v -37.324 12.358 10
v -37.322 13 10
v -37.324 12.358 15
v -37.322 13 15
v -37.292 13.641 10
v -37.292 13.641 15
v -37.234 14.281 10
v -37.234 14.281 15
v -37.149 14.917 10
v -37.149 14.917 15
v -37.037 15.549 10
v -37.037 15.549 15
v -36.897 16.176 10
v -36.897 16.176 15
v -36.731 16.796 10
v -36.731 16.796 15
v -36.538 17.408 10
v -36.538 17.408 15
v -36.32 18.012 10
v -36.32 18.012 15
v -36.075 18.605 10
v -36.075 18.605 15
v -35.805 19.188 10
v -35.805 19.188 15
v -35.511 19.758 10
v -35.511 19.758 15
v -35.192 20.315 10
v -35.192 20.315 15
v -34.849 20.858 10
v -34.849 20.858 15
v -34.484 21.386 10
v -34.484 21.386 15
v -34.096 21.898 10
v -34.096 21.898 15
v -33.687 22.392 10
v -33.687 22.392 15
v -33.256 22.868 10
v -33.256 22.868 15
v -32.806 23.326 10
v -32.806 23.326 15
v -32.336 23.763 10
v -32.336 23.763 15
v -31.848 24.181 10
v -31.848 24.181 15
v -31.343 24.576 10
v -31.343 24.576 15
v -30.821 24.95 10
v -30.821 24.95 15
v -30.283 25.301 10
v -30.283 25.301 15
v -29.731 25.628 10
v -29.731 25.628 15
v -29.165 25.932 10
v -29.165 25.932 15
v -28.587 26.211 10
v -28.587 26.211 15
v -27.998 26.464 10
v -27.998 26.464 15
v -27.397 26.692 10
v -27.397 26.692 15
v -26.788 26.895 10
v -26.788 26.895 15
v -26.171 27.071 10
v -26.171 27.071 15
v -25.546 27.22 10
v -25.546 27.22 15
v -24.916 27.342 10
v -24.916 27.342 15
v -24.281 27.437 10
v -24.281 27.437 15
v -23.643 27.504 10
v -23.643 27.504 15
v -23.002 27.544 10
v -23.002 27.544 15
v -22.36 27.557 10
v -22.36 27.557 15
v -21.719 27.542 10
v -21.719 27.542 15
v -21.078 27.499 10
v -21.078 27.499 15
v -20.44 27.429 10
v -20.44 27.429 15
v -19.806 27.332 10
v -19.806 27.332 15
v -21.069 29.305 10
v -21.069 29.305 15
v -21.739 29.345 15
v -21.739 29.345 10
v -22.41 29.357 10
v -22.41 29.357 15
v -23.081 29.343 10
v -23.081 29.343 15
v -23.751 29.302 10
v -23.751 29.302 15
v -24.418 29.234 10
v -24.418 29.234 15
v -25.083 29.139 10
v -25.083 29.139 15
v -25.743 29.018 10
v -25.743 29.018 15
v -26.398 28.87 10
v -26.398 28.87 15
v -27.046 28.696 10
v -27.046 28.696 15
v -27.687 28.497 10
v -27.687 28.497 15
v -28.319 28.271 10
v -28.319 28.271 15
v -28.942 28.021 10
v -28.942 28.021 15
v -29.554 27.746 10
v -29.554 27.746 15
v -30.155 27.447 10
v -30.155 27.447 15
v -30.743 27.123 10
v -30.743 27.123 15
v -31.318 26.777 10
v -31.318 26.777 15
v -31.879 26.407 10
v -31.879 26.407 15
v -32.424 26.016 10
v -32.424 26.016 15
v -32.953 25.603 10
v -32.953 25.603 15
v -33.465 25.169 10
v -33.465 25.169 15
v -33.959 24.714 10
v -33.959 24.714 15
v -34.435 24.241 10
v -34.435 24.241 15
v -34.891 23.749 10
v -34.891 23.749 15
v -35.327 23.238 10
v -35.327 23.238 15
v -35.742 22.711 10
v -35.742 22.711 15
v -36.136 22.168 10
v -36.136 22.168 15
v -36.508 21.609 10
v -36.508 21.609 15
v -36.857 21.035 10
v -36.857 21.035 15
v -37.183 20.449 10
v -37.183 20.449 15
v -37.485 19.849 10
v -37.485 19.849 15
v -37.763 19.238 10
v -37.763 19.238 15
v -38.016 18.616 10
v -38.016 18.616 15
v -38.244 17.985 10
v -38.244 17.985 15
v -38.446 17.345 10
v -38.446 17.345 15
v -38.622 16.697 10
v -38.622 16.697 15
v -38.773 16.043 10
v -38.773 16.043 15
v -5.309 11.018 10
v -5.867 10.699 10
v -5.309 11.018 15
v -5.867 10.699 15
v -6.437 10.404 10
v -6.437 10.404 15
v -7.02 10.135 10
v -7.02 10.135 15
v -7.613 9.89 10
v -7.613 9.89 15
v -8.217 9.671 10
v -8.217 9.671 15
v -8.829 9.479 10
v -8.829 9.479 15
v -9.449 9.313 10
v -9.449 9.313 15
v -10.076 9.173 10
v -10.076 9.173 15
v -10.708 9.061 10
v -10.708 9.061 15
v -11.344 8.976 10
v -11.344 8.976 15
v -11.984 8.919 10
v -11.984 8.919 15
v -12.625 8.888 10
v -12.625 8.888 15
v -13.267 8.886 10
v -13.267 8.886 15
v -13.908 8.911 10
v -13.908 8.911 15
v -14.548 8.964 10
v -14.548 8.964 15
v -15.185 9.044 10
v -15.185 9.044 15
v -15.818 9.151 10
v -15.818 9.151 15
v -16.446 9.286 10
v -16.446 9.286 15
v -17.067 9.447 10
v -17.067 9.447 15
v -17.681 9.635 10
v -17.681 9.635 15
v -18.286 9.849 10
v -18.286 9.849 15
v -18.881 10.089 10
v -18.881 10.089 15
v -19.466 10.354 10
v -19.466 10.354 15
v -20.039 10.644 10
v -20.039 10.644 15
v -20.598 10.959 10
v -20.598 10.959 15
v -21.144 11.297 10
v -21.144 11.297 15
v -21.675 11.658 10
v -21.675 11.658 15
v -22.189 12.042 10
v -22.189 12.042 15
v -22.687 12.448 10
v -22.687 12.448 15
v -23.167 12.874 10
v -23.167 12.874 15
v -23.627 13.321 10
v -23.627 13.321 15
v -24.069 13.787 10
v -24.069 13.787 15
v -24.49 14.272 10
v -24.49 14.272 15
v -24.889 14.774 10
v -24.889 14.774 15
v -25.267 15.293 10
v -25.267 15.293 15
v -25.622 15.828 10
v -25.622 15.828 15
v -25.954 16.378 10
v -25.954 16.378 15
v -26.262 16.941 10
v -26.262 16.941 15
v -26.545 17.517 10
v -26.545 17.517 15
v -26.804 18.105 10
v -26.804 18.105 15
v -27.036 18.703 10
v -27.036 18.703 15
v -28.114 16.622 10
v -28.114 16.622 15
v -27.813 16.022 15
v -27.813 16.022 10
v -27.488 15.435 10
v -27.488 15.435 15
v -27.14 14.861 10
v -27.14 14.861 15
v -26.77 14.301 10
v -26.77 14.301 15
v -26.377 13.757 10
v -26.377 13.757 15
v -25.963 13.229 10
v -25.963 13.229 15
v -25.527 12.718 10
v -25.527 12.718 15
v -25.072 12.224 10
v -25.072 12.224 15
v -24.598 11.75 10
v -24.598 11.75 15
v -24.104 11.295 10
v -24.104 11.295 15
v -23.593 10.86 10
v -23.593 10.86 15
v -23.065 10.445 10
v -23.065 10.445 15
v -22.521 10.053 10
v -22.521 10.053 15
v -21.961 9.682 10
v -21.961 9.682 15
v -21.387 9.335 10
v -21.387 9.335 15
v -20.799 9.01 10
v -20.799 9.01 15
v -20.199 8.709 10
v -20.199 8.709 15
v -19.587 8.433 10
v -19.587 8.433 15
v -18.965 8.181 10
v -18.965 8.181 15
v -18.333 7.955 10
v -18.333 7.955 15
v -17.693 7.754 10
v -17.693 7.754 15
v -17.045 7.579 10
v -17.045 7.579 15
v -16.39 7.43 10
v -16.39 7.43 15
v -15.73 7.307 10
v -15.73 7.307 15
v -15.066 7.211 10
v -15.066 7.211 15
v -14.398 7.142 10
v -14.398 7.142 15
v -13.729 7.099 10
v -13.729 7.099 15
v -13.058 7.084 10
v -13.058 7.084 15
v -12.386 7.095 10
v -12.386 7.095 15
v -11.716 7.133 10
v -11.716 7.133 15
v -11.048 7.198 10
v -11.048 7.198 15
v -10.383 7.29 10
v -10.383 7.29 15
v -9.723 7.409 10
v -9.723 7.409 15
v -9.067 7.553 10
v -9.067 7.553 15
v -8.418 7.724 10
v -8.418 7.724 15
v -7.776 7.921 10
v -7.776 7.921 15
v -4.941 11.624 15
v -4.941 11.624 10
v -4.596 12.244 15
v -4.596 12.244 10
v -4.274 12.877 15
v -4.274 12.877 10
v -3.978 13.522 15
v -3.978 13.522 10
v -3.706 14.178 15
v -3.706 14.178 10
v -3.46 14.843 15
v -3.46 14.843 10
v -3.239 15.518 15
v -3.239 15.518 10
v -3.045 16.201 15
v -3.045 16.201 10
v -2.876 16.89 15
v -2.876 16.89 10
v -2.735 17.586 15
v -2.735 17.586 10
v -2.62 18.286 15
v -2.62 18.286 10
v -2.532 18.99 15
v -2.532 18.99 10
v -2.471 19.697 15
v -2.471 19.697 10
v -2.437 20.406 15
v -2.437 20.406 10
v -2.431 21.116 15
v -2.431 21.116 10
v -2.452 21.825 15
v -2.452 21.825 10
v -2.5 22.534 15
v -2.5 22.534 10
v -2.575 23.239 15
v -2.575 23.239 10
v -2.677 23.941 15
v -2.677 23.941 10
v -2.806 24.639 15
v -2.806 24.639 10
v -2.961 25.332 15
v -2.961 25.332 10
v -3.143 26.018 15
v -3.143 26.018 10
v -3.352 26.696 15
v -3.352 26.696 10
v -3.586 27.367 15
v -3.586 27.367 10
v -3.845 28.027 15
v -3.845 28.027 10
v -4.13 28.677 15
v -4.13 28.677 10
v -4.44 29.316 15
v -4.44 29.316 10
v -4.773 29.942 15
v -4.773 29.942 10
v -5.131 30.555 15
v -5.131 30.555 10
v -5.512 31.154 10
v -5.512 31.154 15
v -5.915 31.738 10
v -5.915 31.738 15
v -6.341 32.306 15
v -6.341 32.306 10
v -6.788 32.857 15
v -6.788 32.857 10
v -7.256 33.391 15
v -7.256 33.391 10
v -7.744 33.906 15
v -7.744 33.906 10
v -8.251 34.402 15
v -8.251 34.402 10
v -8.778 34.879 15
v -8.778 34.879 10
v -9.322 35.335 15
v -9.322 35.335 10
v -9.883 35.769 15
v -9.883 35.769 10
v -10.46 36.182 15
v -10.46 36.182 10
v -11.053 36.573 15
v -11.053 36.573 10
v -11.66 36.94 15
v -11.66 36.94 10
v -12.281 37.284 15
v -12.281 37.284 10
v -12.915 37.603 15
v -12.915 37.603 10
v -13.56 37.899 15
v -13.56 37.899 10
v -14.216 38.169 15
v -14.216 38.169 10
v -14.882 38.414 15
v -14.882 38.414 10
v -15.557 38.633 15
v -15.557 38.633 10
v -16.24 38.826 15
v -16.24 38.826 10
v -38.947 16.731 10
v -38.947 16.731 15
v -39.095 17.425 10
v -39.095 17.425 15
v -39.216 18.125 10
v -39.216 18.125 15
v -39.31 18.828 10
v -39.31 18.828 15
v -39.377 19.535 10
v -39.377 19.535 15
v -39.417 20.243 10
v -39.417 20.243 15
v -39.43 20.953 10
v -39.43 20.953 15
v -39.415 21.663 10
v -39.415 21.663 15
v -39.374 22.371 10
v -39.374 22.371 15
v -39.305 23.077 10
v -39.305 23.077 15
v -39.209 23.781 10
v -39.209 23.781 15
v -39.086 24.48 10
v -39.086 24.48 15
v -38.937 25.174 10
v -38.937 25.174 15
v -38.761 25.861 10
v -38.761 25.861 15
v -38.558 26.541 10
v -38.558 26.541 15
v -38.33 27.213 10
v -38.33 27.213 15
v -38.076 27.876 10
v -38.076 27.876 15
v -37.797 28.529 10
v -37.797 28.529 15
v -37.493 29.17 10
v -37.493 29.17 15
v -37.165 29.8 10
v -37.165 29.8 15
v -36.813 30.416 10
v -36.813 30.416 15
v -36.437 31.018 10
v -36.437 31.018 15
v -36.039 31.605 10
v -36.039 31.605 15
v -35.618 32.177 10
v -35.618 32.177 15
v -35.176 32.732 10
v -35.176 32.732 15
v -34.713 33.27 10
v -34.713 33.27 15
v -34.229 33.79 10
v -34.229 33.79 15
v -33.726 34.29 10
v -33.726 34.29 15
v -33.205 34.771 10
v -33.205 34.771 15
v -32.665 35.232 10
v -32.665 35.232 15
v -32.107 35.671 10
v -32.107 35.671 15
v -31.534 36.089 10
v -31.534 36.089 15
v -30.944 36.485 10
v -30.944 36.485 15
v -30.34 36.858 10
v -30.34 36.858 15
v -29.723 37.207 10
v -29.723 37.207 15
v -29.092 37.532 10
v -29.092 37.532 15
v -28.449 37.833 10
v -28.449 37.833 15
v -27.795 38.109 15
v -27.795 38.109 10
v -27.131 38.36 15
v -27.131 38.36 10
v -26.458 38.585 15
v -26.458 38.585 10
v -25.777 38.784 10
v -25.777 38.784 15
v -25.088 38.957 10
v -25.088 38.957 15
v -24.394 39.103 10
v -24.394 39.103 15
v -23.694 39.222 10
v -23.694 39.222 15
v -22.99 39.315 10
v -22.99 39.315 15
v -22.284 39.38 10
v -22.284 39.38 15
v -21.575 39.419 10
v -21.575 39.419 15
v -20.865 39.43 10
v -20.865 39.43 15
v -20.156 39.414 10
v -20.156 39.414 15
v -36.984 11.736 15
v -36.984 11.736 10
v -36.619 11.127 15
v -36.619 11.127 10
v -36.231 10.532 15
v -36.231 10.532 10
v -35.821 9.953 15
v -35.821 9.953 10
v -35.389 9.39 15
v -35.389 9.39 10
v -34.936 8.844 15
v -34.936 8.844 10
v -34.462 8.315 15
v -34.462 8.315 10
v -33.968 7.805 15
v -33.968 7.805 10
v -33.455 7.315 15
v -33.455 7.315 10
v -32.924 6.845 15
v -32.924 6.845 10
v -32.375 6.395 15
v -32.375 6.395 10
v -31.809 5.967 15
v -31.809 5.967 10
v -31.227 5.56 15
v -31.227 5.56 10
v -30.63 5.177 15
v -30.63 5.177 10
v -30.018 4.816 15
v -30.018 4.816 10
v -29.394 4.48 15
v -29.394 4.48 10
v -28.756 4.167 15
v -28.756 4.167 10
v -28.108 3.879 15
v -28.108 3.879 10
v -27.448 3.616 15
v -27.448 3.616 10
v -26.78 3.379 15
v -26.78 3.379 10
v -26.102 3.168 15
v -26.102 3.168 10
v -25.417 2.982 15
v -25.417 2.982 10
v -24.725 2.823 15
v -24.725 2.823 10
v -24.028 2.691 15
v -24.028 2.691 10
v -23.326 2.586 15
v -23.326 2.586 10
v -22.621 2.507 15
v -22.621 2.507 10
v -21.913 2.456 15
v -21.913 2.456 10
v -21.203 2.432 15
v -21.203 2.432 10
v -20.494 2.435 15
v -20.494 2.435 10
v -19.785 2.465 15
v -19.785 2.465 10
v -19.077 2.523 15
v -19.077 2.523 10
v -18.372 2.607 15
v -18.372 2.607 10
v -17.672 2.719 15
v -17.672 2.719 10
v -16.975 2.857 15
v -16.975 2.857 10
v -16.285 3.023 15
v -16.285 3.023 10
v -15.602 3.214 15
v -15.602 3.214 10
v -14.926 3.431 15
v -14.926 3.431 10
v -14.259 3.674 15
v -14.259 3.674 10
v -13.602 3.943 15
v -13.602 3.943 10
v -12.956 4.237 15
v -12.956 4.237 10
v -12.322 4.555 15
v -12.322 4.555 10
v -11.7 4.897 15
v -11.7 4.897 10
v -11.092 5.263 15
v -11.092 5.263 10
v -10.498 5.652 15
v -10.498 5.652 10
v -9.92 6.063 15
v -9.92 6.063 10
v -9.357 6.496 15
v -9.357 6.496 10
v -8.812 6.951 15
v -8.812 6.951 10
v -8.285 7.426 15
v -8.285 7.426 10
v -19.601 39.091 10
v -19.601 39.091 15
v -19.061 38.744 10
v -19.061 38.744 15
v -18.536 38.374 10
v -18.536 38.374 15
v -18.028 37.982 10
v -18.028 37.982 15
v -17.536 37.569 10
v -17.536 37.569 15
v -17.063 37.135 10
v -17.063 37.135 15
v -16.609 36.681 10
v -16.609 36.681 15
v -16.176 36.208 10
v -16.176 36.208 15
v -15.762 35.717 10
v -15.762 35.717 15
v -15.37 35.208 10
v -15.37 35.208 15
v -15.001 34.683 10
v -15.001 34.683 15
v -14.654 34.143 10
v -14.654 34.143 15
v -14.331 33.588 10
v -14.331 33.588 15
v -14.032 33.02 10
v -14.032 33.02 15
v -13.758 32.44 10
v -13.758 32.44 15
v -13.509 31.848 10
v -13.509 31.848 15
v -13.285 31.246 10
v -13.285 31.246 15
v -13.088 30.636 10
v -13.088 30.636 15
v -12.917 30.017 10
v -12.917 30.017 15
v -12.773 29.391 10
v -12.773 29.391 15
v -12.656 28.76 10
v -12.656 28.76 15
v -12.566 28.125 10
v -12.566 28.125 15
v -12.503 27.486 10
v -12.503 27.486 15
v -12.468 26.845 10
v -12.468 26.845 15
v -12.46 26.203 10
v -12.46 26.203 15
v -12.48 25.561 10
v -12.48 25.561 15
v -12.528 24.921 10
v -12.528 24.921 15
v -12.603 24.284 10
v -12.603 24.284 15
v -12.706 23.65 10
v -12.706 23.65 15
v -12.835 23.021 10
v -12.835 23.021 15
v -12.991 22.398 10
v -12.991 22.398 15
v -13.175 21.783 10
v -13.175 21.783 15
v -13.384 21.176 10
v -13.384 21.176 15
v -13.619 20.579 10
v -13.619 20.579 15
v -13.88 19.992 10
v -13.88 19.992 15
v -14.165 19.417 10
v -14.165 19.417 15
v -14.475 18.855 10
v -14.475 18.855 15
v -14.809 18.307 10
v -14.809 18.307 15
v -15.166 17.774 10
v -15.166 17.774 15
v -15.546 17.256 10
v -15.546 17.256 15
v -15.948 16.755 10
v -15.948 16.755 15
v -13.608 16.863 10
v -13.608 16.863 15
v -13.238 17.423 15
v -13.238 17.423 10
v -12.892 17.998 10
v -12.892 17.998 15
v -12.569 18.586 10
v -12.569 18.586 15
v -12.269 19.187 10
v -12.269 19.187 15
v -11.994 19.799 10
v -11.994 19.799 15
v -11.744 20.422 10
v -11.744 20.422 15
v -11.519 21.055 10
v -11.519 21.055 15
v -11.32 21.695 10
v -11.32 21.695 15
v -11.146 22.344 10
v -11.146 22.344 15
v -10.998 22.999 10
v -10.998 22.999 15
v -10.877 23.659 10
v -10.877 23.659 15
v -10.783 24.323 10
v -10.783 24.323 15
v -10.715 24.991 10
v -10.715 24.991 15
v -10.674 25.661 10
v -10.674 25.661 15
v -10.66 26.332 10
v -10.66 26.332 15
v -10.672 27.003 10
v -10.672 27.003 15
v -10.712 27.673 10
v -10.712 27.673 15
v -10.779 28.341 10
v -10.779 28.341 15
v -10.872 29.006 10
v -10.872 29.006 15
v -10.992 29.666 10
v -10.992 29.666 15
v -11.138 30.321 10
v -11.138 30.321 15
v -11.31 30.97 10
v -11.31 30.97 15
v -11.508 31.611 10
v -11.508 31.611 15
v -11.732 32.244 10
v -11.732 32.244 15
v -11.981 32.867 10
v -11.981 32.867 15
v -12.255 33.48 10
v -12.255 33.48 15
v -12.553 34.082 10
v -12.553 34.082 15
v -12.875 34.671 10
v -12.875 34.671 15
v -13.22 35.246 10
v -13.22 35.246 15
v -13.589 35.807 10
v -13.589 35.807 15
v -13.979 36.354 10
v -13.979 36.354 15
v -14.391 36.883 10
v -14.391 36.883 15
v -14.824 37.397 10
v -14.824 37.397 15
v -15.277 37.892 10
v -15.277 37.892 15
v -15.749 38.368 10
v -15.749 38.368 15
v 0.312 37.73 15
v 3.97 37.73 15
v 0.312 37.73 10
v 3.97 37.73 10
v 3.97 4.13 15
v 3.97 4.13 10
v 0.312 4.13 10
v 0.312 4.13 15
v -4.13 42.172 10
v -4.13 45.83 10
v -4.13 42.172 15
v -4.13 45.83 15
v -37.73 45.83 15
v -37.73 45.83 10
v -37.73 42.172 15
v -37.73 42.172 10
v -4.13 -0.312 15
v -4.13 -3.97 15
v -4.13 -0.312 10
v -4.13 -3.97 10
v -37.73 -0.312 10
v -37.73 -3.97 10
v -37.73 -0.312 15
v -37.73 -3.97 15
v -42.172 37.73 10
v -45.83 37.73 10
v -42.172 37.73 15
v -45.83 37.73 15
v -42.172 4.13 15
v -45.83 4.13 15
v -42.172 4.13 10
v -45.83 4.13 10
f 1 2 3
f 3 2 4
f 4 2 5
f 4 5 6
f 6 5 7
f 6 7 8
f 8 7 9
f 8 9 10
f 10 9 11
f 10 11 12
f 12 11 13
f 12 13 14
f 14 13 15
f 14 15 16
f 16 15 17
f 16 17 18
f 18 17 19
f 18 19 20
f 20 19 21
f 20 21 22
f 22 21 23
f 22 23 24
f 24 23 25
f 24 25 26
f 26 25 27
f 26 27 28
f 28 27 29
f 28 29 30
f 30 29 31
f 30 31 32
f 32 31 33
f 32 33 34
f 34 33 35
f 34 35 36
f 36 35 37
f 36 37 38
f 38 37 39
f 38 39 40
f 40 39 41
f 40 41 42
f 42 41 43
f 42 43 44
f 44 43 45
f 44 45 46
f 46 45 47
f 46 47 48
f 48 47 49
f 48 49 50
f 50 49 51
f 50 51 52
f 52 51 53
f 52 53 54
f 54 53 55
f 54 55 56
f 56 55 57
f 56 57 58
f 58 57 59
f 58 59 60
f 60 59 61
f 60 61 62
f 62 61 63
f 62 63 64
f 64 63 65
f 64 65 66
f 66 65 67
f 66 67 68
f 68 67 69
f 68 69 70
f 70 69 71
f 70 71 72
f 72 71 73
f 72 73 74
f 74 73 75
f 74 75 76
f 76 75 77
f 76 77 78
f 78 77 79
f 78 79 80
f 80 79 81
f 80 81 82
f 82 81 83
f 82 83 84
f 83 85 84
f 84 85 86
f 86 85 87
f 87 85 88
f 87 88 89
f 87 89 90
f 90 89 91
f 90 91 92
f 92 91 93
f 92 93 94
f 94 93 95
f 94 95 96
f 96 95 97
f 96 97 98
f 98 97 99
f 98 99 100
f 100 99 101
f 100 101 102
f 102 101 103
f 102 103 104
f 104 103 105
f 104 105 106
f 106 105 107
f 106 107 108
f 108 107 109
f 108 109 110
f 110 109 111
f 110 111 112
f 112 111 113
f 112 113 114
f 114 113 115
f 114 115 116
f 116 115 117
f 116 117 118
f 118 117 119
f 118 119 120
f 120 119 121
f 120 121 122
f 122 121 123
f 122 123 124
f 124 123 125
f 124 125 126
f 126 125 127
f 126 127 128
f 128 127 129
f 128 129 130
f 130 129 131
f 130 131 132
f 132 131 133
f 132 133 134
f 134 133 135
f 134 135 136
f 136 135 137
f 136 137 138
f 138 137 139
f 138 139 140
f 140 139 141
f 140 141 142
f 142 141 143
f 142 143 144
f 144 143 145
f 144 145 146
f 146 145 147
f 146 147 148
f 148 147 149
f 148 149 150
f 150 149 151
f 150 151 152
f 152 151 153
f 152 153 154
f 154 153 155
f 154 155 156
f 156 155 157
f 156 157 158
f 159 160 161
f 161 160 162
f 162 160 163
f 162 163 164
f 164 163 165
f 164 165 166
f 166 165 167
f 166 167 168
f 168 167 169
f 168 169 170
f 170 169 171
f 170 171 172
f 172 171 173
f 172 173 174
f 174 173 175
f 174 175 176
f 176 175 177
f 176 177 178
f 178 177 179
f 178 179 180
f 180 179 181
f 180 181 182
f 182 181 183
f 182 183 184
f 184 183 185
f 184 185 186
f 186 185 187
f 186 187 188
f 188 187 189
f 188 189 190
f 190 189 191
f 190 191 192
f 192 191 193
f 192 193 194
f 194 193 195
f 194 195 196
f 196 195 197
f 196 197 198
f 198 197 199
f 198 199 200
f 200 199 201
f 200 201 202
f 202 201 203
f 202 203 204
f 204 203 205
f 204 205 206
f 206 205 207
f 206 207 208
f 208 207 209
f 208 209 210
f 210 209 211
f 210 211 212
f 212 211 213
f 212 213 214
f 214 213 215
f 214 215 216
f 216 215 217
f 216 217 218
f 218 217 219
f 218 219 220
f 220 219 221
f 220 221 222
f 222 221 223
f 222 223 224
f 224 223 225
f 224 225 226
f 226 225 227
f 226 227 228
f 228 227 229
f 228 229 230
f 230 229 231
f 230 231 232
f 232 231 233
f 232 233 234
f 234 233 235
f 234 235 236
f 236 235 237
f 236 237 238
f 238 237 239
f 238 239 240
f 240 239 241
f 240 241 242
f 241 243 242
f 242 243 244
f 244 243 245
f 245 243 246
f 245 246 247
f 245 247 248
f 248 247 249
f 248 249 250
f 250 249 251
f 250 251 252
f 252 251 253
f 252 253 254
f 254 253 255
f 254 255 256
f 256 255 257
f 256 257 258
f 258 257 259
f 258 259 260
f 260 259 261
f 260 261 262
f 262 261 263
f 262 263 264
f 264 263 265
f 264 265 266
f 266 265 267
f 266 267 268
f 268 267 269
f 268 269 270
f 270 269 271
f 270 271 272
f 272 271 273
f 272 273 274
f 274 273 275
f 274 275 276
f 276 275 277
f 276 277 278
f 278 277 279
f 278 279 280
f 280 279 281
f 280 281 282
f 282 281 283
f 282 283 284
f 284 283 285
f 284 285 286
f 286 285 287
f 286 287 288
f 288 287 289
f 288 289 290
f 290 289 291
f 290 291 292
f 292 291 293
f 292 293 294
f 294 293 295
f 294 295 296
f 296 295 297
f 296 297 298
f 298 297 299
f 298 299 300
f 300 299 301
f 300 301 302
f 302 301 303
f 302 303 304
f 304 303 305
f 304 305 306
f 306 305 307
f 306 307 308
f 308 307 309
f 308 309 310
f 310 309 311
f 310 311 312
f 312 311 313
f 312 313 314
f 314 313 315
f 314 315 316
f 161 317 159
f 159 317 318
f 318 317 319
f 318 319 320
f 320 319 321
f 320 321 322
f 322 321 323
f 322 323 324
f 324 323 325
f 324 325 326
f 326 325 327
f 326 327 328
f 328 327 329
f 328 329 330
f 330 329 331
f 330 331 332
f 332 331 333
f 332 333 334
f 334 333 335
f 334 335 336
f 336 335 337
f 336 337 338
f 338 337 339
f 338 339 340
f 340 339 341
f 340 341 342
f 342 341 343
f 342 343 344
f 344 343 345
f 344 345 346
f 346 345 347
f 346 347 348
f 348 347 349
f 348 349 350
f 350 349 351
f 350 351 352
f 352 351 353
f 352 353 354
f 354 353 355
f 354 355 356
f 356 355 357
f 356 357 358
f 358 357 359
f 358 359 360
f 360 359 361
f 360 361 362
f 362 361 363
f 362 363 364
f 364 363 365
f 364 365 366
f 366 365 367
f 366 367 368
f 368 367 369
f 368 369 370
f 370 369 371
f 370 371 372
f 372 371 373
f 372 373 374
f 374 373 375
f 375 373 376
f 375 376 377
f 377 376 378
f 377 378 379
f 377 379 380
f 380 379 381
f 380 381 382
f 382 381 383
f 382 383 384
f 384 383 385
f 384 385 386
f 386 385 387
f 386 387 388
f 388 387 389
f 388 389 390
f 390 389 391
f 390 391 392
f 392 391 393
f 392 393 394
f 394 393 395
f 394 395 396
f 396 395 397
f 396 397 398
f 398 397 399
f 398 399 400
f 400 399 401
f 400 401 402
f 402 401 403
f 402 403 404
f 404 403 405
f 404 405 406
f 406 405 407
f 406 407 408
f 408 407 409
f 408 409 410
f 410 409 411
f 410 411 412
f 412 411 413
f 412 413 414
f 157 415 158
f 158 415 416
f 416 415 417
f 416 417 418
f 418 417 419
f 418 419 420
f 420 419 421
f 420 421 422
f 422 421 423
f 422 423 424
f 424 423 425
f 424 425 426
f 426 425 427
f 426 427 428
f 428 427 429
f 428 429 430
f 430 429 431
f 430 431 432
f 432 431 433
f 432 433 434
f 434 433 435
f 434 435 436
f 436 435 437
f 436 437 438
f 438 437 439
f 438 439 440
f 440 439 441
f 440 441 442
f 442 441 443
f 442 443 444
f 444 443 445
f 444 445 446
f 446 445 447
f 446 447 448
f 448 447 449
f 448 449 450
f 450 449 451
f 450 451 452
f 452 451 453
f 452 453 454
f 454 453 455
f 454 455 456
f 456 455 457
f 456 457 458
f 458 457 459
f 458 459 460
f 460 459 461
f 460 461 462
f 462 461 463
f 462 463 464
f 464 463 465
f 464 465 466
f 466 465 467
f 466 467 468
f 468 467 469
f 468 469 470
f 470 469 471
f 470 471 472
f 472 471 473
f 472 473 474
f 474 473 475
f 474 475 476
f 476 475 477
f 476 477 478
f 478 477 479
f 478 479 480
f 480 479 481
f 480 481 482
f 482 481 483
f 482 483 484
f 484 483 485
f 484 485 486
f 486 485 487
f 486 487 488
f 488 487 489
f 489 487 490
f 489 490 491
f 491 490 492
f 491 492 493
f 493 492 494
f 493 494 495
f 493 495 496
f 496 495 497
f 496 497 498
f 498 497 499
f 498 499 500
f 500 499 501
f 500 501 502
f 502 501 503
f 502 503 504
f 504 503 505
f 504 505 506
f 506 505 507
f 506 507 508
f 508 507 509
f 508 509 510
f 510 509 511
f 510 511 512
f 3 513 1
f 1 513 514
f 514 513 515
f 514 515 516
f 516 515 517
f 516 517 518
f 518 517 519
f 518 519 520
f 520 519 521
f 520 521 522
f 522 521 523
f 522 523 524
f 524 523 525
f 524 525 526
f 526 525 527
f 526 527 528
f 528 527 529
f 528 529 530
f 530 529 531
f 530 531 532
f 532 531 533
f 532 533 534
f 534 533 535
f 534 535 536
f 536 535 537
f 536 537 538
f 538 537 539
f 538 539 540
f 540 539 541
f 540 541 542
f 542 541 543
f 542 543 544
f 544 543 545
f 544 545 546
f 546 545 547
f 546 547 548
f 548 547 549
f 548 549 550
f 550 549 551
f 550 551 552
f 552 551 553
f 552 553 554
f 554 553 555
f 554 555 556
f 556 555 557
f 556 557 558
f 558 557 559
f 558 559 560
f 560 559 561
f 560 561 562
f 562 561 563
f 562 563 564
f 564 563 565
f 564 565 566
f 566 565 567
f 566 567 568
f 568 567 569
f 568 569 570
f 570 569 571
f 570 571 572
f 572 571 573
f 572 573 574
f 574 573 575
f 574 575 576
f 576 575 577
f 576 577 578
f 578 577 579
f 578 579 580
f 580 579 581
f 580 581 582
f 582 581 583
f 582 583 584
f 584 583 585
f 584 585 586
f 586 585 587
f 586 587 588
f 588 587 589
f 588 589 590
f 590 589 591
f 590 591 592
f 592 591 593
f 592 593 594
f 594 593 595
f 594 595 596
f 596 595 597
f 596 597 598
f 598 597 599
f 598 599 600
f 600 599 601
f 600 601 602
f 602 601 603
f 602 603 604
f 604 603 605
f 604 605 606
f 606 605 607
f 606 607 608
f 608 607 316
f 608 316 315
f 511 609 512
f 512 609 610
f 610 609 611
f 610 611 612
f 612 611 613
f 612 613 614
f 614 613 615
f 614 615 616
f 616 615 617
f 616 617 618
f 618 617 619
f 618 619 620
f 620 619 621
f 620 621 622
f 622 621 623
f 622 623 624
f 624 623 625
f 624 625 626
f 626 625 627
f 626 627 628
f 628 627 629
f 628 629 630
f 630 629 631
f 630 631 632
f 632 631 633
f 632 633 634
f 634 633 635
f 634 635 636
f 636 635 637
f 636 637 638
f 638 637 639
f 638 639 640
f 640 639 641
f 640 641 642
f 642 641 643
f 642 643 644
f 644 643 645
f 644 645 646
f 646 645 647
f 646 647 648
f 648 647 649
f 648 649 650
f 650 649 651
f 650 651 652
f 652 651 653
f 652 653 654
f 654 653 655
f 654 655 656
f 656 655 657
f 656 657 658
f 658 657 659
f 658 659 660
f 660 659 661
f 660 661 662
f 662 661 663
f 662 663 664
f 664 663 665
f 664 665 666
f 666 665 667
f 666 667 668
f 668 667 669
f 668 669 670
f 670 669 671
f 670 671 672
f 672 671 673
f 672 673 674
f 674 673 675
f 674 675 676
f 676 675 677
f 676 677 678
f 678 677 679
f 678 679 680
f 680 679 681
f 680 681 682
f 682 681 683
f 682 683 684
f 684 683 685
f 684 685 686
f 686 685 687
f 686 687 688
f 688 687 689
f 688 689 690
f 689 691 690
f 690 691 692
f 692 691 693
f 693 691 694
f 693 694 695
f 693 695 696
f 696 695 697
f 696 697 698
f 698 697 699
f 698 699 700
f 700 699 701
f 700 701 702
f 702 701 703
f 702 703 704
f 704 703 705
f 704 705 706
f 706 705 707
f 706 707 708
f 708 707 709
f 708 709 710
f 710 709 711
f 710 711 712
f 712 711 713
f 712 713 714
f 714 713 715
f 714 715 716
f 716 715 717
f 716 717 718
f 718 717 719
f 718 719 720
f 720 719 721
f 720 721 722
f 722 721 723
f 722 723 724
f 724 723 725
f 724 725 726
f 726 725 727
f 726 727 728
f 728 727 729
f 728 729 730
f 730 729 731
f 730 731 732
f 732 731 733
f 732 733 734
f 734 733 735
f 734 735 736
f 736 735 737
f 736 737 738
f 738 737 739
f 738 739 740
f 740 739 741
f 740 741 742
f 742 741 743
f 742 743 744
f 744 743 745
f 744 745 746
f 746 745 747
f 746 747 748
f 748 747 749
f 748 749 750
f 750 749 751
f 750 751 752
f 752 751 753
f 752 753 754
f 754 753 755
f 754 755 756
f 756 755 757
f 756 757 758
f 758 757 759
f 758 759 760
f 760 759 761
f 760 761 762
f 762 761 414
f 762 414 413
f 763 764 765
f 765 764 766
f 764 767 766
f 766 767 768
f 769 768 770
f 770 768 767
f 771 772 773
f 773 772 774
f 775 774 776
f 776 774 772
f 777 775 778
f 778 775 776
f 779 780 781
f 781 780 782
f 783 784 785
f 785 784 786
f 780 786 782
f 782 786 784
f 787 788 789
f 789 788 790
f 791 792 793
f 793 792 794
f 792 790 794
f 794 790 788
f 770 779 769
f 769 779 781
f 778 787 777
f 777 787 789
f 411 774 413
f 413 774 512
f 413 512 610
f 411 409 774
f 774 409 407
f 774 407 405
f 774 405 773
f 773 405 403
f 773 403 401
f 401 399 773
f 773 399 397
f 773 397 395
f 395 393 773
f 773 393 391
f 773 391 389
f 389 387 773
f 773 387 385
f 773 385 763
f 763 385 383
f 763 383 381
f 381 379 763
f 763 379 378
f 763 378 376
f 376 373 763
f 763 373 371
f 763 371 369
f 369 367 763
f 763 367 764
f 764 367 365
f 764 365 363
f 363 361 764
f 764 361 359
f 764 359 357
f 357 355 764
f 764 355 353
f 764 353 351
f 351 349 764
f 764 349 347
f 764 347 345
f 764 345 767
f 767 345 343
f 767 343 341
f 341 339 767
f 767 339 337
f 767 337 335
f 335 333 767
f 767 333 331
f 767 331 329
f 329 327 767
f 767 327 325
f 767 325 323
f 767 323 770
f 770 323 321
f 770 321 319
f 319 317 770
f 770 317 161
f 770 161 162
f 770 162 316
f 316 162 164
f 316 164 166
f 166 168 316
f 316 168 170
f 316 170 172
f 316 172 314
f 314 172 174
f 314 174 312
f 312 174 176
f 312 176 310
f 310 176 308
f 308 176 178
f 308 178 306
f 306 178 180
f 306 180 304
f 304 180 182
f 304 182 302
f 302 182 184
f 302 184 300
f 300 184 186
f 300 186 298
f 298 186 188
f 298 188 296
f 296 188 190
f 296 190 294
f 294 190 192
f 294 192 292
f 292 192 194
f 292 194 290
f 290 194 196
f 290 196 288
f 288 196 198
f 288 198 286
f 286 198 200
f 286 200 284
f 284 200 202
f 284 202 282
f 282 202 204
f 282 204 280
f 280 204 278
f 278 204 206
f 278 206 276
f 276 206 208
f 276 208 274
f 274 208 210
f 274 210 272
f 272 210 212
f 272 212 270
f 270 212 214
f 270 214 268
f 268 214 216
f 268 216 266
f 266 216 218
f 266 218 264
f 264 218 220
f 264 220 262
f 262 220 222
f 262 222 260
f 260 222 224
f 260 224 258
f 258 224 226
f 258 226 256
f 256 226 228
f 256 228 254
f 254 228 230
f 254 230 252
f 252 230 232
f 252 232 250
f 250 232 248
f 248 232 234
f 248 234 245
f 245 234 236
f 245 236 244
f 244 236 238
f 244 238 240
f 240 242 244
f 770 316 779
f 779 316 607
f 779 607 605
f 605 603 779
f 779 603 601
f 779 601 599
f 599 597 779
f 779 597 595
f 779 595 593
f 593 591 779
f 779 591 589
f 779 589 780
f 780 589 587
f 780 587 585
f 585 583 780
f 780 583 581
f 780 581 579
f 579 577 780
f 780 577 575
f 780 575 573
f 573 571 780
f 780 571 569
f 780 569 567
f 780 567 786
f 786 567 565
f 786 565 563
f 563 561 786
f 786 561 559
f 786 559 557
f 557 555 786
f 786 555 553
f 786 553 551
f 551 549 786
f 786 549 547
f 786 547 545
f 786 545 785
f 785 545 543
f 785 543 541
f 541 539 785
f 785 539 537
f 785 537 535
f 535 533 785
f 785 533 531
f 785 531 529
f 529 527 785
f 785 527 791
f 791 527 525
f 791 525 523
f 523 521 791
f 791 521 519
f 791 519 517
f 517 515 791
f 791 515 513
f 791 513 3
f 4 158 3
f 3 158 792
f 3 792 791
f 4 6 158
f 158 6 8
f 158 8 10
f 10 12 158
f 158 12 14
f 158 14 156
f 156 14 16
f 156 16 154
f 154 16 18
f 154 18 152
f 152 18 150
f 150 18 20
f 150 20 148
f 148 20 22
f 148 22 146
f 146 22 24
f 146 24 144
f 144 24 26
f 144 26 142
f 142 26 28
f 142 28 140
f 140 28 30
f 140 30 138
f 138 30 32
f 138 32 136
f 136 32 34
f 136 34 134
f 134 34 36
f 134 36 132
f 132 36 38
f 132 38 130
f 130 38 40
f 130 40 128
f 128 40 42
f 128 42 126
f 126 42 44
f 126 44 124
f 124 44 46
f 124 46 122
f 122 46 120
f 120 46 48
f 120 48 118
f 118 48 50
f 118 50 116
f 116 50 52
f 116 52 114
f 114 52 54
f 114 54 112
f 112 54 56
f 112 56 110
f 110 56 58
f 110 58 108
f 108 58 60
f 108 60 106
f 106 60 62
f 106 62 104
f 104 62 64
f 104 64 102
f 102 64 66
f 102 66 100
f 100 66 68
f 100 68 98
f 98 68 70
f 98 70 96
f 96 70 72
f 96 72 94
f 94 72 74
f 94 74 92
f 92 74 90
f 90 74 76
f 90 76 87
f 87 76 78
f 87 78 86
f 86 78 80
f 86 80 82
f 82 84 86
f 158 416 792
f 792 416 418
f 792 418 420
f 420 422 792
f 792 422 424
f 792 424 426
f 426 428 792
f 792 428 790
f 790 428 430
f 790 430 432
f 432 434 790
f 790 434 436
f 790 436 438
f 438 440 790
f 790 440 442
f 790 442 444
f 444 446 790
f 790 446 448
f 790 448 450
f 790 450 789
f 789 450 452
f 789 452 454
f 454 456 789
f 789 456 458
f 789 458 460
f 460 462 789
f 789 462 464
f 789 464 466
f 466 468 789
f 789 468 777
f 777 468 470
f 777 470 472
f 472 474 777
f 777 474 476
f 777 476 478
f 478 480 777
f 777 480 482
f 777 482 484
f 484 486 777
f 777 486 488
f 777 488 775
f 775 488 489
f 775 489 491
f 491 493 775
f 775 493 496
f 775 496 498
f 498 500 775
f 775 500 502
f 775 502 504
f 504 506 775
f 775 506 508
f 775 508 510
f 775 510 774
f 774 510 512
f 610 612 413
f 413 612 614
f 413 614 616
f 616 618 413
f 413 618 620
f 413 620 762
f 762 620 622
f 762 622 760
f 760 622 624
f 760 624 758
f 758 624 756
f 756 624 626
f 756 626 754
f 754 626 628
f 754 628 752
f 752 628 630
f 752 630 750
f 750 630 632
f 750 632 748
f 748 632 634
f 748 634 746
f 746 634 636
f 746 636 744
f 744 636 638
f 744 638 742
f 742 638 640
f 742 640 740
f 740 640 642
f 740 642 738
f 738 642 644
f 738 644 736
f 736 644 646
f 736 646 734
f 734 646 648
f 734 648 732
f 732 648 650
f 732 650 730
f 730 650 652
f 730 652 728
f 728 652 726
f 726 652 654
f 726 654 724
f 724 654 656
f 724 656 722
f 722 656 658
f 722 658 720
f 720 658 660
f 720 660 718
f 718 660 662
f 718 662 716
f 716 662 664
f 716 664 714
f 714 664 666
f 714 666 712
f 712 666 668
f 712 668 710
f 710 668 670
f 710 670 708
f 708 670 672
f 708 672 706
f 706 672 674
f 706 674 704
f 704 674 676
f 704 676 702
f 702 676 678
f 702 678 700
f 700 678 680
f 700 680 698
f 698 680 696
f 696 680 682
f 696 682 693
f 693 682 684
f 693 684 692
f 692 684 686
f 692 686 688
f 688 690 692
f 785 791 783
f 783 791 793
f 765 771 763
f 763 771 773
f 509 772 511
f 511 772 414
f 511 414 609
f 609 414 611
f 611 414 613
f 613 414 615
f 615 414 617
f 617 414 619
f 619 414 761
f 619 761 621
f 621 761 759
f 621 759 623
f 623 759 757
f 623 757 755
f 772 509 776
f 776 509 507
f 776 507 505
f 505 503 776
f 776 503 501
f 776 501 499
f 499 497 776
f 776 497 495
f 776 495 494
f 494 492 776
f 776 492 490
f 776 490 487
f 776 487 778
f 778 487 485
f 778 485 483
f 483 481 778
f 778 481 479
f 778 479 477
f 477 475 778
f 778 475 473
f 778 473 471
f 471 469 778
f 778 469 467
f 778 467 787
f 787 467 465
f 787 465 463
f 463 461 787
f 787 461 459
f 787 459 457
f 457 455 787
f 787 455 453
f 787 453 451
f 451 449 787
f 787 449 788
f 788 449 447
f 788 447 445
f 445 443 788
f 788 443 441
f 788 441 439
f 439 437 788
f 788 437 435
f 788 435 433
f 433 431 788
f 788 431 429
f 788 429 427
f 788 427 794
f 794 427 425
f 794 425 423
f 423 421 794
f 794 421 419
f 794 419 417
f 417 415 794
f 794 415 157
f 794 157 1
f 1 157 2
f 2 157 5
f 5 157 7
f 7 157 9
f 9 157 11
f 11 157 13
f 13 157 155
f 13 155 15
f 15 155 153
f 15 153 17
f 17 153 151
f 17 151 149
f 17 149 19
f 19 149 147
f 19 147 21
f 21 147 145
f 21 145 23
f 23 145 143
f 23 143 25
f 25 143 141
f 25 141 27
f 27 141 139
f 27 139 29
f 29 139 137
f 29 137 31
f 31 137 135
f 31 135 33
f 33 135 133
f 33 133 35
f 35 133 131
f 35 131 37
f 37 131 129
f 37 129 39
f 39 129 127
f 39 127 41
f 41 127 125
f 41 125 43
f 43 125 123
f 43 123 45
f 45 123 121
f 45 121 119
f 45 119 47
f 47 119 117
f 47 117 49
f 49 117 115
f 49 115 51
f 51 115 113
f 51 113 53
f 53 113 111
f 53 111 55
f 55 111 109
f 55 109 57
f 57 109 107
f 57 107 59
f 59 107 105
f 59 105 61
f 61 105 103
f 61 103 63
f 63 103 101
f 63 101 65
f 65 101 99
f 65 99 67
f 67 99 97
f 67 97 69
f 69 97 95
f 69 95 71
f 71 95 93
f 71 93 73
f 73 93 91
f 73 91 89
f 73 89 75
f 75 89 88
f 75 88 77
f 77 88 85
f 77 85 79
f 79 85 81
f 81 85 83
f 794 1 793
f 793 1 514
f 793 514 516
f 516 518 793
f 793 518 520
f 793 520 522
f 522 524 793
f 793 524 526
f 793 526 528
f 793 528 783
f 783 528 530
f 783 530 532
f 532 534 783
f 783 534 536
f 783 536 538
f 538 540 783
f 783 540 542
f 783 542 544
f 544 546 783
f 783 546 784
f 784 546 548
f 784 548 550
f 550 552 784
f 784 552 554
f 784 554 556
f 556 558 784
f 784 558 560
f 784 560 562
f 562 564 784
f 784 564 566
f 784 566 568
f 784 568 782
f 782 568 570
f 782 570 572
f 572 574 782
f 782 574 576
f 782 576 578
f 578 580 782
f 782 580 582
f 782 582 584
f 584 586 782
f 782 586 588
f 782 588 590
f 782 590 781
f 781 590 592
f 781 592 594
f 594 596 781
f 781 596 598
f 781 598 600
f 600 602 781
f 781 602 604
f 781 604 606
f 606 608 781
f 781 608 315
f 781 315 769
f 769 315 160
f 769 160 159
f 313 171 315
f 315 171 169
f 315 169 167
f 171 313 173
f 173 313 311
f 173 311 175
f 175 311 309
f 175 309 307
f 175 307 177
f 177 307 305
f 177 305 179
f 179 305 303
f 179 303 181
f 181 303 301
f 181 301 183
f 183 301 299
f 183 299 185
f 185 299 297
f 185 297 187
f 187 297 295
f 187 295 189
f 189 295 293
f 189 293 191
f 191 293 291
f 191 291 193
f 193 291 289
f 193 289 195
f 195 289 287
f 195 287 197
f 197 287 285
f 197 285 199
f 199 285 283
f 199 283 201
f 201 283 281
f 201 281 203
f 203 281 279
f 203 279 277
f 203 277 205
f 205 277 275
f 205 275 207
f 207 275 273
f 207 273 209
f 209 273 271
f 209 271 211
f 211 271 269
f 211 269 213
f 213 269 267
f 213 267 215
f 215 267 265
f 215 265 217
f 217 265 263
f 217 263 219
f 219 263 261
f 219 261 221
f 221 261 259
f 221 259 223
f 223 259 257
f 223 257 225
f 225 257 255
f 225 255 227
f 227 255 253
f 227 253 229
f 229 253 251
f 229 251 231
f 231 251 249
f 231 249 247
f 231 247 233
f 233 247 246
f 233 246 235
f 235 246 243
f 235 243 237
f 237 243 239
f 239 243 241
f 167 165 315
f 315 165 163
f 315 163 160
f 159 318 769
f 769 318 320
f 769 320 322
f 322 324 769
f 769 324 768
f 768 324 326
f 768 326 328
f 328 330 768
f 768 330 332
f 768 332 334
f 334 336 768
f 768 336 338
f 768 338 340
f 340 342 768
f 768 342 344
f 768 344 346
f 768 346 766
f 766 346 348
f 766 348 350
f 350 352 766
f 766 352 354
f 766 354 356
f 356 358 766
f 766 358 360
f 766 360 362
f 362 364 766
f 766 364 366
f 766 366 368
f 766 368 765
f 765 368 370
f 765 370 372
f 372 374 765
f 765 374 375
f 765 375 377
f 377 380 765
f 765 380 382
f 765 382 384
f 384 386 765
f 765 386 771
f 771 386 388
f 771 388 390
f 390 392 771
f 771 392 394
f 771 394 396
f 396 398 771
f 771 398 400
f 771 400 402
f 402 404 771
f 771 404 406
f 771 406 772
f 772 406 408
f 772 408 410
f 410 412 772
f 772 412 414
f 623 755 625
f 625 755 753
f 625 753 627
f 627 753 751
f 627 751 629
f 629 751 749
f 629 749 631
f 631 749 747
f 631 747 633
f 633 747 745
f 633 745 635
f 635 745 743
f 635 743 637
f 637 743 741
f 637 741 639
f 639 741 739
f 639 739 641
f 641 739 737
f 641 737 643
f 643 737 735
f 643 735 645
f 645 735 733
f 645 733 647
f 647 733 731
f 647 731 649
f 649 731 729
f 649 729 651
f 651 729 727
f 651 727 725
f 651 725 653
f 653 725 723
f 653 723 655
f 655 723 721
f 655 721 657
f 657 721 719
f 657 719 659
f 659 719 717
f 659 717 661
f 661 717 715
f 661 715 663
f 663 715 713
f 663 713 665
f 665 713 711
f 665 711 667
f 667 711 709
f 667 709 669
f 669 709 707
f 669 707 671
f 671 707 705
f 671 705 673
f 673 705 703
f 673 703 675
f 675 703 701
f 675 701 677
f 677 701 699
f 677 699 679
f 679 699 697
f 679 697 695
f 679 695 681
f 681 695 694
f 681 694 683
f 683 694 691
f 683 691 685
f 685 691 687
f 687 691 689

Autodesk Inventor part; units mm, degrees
ref_plane "YZ Plane" through (0, 0, 0) normal (1, 0, 0) x (0, 1, 0)
ref_plane "Work Plane1" through (0, 0, 10) normal (0, 0, 1) x (1, 0, 0)
sketch "Sketch1" plane through (0, 0, 10) normal (0, 0, 1) x (1, 0, 0)
  line L0 (-4.0299, -0.3538) -> (-2.2322, 1.4439) construction
  arc A0 (-1.4439, 2.2322) -> (-2.2322, 1.4439) centre (-0.9299, 0.9299) ccw construction
  line L1 (-1.4439, 2.2322) -> (0.3538, 4.0299) construction
  line L2 (-37.8299, 42.2137) -> (-37.8299, 45.8299) construction
  line L3 (-37.8299, 45.8299) -> (-4.0299, 45.8299) construction
  line L4 (-4.0299, 45.8299) -> (-4.0299, 42.2137) construction
  line L5 (-4.0299, 4.0299) -> (0.3538, 4.0299) projected
  line L6 (-20.9299, 58.9723) -> (17.1124, 20.9299) construction
  line L7 (17.1124, 20.9299) -> (-20.9299, -17.1124) construction
  line L8 (-20.9299, -17.1124) -> (-58.9723, 20.9299) construction
  line L9 (-58.9723, 20.9299) -> (-20.9299, 58.9723) construction
  line L10 (-20.9299, 58.9723) -> (-20.9299, -17.1124) construction
  line L11 (17.1124, 20.9299) -> (-58.9723, 20.9299) construction
  line L12 (-20.9299, 58.9723) -> (32.8701, 58.9723) construction
  line L13 (-43.4299, 43.4299) -> (1.5701, 43.4299) construction
  line L14 (1.5701, 43.4299) -> (1.5701, -1.5701) construction
  line L15 (1.5701, -1.5701) -> (-43.4299, -1.5701) construction
  line L16 (-43.4299, -1.5701) -> (-43.4299, 43.4299) construction
  line L17 (-43.4299, 43.4299) -> (1.5701, -1.5701) construction
  line L18 (1.5701, 43.4299) -> (-43.4299, -1.5701) construction
  line L19 (-43.4299, 5.3876) -> (-43.4299, 36.4723)
  line L20 (-43.4299, 36.4723) -> (-36.4723, 43.4299)
  line L21 (-36.4723, 43.4299) -> (-5.3876, 43.4299)
  line L22 (-5.3876, 43.4299) -> (1.5701, 36.4723)
  line L23 (1.5701, 36.4723) -> (1.5701, 5.3876)
  line L24 (1.5701, 5.3876) -> (-5.3876, -1.5701)
  line L25 (-5.3876, -1.5701) -> (-36.4723, -1.5701)
  line L26 (-36.4723, -1.5701) -> (-43.4299, 5.3876)
  line L27 (-4.0299, 42.2137) -> (-37.8299, 42.2137) projected
  line L28 (-4.0299, -0.3538) -> (-4.0299, 4.0299) projected
  circle A1 centre (-20.9299, 20.9299) radius 13.3985
  circle A2 centre (-20.9299, 20.9299) radius 15.4895
  point P0 (-37.8299, 4.0299)
  dimension "d18" = 53.8
  dimension "d19" = 45
  dimension "d20" = 53.8
  dimension "d21" = 45
  dimension "d22" = 45
  dimension "d30" = 26.797
  dimension "d36" = 30.979
extrude "Extrusion1" add sketch "Sketch1" along normal blind 5 contours L28 L24 L25 L26 L19 L20 L27 L22 L23 L5 | L5 L24 L28 | L27 L20 L21 L22 | A1 | A2
ref_plane "Work Plane2" through (-40.9959, 0.8639, 22.2359) normal (0, 0, 1) x (1, 0, 0)
sketch "Sketch3" plane through (0, 0, 10) normal (0, 0, -1) x (-1, 0, 0)
  line L0 (37.8299, -0.4701) -> (37.8299, 4.0299) construction
  line L1 (4.0299, 4.0299) -> (4.0299, -0.4701) construction
  line L2 (37.8299, -0.4701) -> (37.8299, 1.1886) construction
  line L3 (4.0299, -3.9701) -> (4.0299, -0.3538) construction
  line L4 (45.8299, 4.0299) -> (42.2137, 4.0299) construction
  line L5 (-0.3538, 4.0299) -> (-3.9701, 4.0299) construction
  line L6 (-3.9701, 37.8299) -> (-0.3538, 37.8299) construction
  line L7 (4.0299, 42.2137) -> (4.0299, 45.8299) construction
  line L8 (37.8299, 45.8299) -> (37.8299, 42.2137) construction
  line L9 (42.2137, 37.8299) -> (45.8299, 37.8299) construction
  line L10 (37.8299, 37.7299) -> (45.8299, 37.7299)
  line L11 (45.8299, 37.7299) -> (45.8299, 4.1299)
  line L12 (45.8299, 4.1299) -> (37.8299, 4.1299)
  line L13 (37.8299, 4.1299) -> (37.8299, 37.7299)
  line L14 (37.7299, 4.0299) -> (4.1299, 4.0299)
  line L15 (4.1299, 4.0299) -> (4.1299, -3.9701)
  line L16 (4.1299, -3.9701) -> (37.7299, -3.9701)
  line L17 (37.7299, -3.9701) -> (37.7299, 4.0299)
  line L18 (4.0299, 4.1299) -> (-3.9701, 4.1299)
  line L19 (-3.9701, 4.1299) -> (-3.9701, 37.7299)
  line L20 (-3.9701, 37.7299) -> (4.0299, 37.7299)
  line L21 (4.0299, 37.7299) -> (4.0299, 4.1299)
  line L22 (4.1299, 37.8299) -> (37.7299, 37.8299)
  line L23 (37.7299, 37.8299) -> (37.7299, 45.8299)
  line L24 (37.7299, 45.8299) -> (4.1299, 45.8299)
  line L25 (4.1299, 45.8299) -> (4.1299, 37.8299)
  point P0 (0, 0)
  dimension "d23" = 0.1
  dimension "d24" = 0.1
  dimension "d25" = 0.1
  dimension "d26" = 0.1
  dimension "d27" = 0.1
extrude "Extrusion3" add sketch "Sketch3" against normal up to surface (5 mm away)
sketch "Sketch6" plane through (0, 0, 15) normal (0, 0, 1) x (1, 0, 0)
  circle A0 centre (-20.9299, 20.9299) radius 18.5
  circle A1 centre (-20.9299, 20.9299) radius 13.3985
  line L0 (-45.8299, 4.1299) -> (-45.8299, 37.7299) projected
  line L1 (-4.1299, -3.9701) -> (-37.7299, -3.9701) projected
  line L2 (-37.7299, 45.8299) -> (-4.1299, 45.8299) projected
  point P0 (0, 0)
  point P1 (-45.8299, 20.9299)
  point P2 (-20.9299, -3.9701)
  point P3 (-20.9299, 45.8299)
  dimension "d37" = 26.797
  dimension "d38" = 37
extrude "Extrusion5" cut sketch "Sketch6" against normal blind 12 contours A0 | A1
sketch "Sketch7" plane through (0, 0, 15) normal (0, 0, 1) x (1, 0, 0)
  arc A0 (-7.3514, 4.1907) -> (-4.1915, 7.0829) centre (-15.9478, 16.7551) ccw
  arc A1 (-7.3514, 4.1907) -> (-4.1915, 7.0829) centre (-15.9478, 16.7551) ccw
  circle A2 centre (-20.9299, 20.9299) radius 18.5 construction
  circle A3 centre (-20.9299, 20.9299) radius 6.5 construction
  arc A4 (-15.9478, 16.7551) -> (-20.1559, 39.4137) centre (-27.3968, 26.3489) ccw
  arc A5 (-13.6076, 16.8625) -> (-16.2405, 38.8257) centre (-27.3968, 26.3489) ccw
  arc A6 (-16.2405, 38.8257) -> (-20.1559, 39.4137) centre (-20.9299, 20.9299) ccw
  line L0 (-15.9478, 16.7551) -> (-13.6076, 16.8625)
  point P0 (0, 0)
  point P1 (-25.3654, 35.7708)
  point P2 (-14.2, -44.8454)
  point P3 (-13.5804, 16.4347)
  point P4 (-13.5804, 8.5029)
  dimension "d79" = 13
  dimension "d83" = 1.8
extrude "Extrusion6" add sketch "Sketch7" against normal up to surface (5 mm away)
pattern_circular "Circular Pattern1" count 3 over 360 about axis through (-20.9299, 20.9299, 15) along (0, 0, -1) of "Extrusion6"
properties part number "50_Cube_Insert_Thorlabs"
